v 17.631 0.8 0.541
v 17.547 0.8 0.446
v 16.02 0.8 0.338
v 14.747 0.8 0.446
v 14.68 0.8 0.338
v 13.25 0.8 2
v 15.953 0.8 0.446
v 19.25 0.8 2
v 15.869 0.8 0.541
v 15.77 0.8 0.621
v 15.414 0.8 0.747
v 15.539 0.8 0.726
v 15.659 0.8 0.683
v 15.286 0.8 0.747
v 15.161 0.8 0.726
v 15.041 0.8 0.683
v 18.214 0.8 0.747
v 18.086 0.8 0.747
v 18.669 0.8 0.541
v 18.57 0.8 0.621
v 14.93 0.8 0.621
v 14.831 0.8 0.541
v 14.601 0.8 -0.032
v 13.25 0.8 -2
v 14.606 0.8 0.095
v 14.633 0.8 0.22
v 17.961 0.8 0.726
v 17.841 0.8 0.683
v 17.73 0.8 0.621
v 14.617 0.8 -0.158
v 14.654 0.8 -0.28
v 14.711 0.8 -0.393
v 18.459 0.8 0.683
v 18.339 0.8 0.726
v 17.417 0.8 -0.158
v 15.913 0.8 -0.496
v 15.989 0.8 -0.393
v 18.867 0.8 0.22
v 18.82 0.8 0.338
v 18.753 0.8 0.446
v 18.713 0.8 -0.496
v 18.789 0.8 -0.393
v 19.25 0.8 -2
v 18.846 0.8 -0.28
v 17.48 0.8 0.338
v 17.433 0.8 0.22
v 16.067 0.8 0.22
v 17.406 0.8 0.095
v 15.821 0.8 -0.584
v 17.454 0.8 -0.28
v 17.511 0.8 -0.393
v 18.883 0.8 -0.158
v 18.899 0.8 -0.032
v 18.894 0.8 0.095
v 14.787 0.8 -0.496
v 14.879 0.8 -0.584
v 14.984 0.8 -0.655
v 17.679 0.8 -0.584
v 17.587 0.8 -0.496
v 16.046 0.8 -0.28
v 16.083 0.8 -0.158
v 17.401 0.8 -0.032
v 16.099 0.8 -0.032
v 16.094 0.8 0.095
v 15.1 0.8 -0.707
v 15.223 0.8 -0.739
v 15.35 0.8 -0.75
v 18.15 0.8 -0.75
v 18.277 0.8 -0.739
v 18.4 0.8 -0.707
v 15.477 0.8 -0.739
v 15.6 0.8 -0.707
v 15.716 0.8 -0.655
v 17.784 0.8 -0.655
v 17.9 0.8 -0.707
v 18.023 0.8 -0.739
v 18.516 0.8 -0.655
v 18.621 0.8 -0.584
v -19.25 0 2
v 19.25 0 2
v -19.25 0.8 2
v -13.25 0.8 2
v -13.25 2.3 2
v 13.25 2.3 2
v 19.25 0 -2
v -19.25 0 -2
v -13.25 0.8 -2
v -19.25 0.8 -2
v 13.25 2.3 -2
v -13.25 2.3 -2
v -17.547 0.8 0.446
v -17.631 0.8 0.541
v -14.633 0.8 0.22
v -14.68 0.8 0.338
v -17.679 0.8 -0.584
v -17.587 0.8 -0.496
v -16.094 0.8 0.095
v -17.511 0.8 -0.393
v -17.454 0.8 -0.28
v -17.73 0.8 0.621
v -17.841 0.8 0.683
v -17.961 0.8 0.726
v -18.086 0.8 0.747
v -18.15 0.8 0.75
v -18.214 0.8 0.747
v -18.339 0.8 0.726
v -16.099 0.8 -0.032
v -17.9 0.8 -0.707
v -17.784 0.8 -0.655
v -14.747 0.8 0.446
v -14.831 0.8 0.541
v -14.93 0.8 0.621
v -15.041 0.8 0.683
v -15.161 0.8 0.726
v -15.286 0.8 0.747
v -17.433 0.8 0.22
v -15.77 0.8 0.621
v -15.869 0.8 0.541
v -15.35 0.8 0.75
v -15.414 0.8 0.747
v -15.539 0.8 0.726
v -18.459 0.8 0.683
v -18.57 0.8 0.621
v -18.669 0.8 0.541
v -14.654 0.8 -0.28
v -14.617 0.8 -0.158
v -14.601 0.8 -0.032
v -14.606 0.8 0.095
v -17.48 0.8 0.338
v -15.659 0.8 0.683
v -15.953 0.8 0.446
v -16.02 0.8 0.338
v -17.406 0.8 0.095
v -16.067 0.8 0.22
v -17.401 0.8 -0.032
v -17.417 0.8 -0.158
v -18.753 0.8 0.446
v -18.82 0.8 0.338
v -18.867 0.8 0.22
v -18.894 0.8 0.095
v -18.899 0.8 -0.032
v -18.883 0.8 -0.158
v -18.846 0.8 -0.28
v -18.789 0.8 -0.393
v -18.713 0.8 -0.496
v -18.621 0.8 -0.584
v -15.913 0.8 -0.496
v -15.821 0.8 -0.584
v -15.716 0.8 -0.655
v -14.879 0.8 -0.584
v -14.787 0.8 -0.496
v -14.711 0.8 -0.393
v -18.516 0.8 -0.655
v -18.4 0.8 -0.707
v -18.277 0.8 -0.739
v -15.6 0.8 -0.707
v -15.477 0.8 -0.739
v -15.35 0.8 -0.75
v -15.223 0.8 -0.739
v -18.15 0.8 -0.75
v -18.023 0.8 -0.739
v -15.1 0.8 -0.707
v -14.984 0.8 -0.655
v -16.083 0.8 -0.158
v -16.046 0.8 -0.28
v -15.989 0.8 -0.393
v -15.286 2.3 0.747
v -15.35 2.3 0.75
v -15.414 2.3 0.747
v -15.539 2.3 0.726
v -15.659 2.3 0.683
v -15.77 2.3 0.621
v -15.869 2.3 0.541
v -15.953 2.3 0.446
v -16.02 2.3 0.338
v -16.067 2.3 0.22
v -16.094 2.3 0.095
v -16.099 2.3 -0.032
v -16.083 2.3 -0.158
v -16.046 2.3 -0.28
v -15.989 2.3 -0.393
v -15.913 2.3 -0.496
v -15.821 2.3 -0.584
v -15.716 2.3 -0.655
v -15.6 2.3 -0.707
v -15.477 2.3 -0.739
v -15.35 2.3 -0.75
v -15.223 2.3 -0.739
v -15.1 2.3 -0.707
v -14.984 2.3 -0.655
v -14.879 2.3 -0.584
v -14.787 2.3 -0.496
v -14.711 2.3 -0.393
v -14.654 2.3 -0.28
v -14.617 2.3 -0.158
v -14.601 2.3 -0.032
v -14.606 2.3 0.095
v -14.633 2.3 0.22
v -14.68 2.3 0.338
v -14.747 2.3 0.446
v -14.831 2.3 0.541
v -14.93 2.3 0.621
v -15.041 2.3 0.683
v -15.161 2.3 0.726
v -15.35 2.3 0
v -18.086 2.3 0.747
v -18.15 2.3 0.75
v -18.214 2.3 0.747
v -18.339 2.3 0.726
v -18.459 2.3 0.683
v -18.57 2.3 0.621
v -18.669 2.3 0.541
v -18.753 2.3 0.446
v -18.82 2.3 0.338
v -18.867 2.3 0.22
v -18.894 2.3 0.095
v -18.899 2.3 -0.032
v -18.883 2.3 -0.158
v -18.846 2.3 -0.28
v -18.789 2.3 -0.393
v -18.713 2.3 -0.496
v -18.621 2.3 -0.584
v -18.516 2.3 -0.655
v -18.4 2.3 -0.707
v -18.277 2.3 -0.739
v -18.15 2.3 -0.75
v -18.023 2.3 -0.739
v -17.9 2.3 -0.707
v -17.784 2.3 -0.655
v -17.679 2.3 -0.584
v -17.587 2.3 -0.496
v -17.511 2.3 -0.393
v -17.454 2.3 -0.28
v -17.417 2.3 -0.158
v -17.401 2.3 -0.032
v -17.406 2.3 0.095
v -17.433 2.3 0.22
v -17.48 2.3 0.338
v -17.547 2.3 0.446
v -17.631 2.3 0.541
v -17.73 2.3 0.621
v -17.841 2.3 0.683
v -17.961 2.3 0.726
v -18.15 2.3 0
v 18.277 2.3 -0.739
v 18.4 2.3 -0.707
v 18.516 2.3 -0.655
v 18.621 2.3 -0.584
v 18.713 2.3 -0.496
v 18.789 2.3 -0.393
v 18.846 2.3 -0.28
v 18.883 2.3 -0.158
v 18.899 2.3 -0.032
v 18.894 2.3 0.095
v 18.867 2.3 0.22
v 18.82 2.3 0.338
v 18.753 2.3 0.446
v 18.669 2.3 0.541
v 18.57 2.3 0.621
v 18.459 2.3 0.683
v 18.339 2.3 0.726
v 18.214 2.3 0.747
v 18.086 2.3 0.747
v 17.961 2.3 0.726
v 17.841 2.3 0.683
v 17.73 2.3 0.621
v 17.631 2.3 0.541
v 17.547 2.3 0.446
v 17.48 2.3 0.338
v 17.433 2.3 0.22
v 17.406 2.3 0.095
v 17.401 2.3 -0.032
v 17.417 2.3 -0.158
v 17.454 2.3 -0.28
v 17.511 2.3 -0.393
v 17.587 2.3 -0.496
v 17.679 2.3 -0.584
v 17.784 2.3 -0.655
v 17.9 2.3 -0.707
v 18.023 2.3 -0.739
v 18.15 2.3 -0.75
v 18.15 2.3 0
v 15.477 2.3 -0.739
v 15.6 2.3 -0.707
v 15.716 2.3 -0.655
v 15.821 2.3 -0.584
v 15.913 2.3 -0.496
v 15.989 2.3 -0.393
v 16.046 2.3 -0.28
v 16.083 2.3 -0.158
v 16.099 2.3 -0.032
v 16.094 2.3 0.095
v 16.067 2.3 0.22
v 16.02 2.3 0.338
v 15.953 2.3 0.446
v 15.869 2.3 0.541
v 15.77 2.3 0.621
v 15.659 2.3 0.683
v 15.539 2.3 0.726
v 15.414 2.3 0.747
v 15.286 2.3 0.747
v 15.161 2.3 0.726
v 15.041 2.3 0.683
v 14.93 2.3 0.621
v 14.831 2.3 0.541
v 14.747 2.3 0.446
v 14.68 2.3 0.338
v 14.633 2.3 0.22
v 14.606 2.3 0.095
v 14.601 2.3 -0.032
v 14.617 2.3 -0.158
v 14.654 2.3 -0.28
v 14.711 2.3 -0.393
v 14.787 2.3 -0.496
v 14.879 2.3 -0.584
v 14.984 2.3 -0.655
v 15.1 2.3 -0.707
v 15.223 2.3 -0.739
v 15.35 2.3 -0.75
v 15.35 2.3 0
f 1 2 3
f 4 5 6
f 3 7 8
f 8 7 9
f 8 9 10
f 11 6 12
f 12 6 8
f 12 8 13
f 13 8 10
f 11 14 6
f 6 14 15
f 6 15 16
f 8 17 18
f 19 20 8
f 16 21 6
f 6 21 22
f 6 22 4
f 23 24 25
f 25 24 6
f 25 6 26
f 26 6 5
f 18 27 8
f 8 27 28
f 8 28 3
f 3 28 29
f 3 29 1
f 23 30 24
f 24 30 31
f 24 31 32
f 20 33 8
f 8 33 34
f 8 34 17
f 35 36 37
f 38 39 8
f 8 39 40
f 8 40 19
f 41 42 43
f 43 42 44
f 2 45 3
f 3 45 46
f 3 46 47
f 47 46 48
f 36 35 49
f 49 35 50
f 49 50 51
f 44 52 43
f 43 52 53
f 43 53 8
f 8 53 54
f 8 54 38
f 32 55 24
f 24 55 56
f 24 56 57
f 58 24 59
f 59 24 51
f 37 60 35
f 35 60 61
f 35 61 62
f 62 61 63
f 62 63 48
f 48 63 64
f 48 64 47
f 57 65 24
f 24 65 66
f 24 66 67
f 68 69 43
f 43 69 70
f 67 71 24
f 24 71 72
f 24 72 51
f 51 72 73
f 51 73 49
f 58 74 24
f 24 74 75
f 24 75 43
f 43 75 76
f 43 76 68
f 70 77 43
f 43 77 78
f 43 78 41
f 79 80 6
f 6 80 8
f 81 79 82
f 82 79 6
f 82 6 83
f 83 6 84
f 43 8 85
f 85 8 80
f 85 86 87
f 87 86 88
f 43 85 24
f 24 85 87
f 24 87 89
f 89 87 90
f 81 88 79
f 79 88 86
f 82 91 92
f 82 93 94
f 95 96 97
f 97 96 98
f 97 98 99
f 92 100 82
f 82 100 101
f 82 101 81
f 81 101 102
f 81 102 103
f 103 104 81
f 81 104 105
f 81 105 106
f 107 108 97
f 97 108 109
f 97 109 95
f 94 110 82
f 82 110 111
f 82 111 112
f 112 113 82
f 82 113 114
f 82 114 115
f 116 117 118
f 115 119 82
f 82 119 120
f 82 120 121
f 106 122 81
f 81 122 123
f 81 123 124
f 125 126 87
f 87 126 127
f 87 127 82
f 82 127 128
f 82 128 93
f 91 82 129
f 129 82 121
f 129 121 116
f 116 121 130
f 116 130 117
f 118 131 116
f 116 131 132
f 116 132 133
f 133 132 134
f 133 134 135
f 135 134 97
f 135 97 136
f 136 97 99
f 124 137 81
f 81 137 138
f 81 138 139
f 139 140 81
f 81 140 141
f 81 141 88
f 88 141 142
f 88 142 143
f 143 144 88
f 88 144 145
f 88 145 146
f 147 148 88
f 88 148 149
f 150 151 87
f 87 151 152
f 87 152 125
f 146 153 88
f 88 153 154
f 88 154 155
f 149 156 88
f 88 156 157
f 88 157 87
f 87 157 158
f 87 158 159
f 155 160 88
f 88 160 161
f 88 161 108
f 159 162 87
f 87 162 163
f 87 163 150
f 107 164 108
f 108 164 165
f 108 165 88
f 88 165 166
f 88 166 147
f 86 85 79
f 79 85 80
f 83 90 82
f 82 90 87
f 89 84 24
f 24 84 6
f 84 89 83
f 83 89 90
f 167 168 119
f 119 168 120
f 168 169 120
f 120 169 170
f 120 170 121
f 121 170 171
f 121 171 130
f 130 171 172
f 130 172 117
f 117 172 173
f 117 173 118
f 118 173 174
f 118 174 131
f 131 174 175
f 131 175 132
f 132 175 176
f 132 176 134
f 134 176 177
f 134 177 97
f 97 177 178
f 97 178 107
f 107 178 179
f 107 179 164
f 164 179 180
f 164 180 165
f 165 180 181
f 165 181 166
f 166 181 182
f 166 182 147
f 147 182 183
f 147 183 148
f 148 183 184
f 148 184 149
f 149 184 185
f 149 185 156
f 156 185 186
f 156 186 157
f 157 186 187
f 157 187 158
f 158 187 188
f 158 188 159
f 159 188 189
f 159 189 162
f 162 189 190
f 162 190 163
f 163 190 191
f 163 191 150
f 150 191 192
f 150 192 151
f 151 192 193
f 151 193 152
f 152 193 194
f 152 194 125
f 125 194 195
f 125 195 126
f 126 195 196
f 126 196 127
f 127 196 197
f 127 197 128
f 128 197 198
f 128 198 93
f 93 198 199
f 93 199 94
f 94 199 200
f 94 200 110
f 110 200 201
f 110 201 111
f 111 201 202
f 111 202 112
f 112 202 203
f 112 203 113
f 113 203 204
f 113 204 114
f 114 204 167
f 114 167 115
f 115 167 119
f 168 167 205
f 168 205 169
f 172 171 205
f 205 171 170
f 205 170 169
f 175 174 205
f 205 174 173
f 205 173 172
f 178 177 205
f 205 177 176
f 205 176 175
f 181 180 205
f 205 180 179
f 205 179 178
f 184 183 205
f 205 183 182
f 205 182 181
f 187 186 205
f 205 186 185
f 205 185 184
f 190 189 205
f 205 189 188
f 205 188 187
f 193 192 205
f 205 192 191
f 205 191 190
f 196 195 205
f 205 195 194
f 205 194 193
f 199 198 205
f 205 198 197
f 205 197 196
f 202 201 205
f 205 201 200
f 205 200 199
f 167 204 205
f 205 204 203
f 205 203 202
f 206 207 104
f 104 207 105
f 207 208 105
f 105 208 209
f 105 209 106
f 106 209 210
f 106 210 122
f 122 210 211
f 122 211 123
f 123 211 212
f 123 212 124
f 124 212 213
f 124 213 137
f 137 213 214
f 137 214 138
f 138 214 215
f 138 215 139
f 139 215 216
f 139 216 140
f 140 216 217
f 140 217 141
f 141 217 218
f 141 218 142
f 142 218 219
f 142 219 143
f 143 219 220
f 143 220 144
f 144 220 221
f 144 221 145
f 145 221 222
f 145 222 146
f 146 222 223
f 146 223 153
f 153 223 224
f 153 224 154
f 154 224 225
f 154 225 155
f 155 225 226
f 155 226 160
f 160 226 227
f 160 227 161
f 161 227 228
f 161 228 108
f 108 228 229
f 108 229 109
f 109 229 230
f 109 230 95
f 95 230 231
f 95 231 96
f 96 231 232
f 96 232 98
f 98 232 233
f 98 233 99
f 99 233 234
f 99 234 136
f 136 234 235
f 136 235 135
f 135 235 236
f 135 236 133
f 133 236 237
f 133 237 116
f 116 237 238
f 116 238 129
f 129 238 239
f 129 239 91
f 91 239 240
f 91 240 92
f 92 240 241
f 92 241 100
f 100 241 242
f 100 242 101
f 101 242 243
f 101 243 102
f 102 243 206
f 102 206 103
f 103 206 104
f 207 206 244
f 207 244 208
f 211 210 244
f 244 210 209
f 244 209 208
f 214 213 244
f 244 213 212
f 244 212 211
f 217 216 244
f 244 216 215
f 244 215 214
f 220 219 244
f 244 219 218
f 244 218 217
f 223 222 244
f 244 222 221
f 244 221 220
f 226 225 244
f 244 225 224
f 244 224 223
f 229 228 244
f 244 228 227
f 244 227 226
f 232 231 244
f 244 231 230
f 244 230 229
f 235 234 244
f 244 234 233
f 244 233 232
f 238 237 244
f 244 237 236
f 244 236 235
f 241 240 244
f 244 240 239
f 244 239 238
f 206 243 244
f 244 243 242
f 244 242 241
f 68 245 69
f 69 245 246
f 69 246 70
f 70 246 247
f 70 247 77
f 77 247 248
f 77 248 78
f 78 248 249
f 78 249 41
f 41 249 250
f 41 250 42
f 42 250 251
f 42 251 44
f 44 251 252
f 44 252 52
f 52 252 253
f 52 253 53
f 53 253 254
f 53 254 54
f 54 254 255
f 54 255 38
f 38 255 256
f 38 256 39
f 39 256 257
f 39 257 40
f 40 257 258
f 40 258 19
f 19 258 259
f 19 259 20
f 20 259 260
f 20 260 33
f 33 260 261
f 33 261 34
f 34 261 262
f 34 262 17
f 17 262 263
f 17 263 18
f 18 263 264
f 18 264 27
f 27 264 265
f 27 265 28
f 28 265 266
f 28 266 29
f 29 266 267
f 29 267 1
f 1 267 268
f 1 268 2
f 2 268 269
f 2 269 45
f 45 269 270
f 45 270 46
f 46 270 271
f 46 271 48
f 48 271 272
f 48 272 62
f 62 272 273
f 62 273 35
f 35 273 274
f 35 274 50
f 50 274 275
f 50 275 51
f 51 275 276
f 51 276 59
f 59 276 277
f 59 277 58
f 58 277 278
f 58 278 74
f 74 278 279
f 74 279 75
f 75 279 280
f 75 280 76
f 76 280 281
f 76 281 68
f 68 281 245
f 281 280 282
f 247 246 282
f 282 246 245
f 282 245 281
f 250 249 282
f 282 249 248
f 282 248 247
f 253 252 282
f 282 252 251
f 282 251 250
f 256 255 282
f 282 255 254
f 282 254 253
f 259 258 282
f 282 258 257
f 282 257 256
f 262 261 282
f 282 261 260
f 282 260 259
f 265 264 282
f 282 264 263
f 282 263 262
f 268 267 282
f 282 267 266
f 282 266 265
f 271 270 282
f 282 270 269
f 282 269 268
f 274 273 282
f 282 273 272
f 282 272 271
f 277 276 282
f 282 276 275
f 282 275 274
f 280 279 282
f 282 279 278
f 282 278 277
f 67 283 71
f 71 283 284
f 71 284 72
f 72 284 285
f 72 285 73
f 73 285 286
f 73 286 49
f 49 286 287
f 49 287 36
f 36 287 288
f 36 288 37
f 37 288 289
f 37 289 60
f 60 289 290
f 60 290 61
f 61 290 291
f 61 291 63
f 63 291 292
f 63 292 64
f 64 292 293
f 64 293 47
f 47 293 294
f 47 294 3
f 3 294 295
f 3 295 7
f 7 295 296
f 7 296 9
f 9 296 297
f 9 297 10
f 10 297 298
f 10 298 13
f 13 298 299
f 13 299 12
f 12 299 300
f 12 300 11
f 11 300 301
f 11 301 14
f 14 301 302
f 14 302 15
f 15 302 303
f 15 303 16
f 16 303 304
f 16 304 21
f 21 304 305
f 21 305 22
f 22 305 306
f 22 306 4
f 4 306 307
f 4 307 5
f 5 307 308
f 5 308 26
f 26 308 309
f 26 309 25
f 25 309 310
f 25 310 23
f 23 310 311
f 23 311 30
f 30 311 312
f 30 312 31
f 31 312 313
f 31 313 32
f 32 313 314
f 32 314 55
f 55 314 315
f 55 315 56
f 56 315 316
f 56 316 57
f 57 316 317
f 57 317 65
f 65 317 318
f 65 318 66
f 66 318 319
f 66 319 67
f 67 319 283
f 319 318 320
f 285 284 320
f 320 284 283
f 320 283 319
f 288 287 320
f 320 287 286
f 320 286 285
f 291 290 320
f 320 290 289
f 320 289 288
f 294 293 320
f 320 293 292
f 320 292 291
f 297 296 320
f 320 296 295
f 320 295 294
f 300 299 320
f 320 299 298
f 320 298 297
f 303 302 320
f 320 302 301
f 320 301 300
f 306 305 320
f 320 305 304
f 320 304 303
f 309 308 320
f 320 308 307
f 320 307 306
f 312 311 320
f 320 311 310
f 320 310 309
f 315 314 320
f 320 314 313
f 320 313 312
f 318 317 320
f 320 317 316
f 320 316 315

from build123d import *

# Parameters (mm, degrees)
SKETCH_1_W      = 26.5
SKETCH_1_H      = 4
SKETCH_1_W_2    = 6
EXTRUDE_1_DEPTH = 0.8
EXTRUDE_START   = 0.8
SKETCH_1_3_W    = 26.5
SKETCH_1_3_H    = 4
EXTRUDE_2_DEPTH = 1.5
SKETCH_2_R      = 0.75
EXTRUDE_3_DEPTH = 1.5


with BuildPart() as part:
    # Эскиз1 → Бобышка-Вытянуть1 (new body)
    with BuildSketch(Plane(origin=(0, 0, 0), x_dir=(1, 0, 0), z_dir=(0, 1, 0))):
        Rectangle(SKETCH_1_W, SKETCH_1_H)
        with Locations((-16.25, 0)):
            Rectangle(SKETCH_1_W_2, SKETCH_1_H)
        with Locations((16.25, 0)):
            Rectangle(SKETCH_1_W_2, SKETCH_1_H)
    extrude(amount=EXTRUDE_1_DEPTH)

    # Эскиз1<3> → Бобышка-Вытянуть2 (add)
    with BuildSketch(Plane(origin=(0, 0, 0), x_dir=(1, 0, 0), z_dir=(0, 1, 0)).offset(EXTRUDE_START)):
        Rectangle(SKETCH_1_3_W, SKETCH_1_3_H)
    extrude(amount=EXTRUDE_2_DEPTH)

    # Эскиз2 → Бобышка-Вытянуть3 (add)
    with BuildSketch(Plane(origin=(0, 0.8, 0), x_dir=(1, 0, 0), z_dir=(0, 1, 0))):
        with Locations(Location((-15.35, 0, 0), (0, 0, 270))):
            Circle(SKETCH_2_R)
        with Locations(Location((-18.15, 0, 0), (0, 0, 270))):
            Circle(SKETCH_2_R)
        with Locations(Location((18.15, 0, 0), (0, 0, 90))):
            Circle(SKETCH_2_R)
        with Locations(Location((15.35, 0, 0), (0, 0, 90))):
            Circle(SKETCH_2_R)
    extrude(amount=EXTRUDE_3_DEPTH)


solid = part.part
